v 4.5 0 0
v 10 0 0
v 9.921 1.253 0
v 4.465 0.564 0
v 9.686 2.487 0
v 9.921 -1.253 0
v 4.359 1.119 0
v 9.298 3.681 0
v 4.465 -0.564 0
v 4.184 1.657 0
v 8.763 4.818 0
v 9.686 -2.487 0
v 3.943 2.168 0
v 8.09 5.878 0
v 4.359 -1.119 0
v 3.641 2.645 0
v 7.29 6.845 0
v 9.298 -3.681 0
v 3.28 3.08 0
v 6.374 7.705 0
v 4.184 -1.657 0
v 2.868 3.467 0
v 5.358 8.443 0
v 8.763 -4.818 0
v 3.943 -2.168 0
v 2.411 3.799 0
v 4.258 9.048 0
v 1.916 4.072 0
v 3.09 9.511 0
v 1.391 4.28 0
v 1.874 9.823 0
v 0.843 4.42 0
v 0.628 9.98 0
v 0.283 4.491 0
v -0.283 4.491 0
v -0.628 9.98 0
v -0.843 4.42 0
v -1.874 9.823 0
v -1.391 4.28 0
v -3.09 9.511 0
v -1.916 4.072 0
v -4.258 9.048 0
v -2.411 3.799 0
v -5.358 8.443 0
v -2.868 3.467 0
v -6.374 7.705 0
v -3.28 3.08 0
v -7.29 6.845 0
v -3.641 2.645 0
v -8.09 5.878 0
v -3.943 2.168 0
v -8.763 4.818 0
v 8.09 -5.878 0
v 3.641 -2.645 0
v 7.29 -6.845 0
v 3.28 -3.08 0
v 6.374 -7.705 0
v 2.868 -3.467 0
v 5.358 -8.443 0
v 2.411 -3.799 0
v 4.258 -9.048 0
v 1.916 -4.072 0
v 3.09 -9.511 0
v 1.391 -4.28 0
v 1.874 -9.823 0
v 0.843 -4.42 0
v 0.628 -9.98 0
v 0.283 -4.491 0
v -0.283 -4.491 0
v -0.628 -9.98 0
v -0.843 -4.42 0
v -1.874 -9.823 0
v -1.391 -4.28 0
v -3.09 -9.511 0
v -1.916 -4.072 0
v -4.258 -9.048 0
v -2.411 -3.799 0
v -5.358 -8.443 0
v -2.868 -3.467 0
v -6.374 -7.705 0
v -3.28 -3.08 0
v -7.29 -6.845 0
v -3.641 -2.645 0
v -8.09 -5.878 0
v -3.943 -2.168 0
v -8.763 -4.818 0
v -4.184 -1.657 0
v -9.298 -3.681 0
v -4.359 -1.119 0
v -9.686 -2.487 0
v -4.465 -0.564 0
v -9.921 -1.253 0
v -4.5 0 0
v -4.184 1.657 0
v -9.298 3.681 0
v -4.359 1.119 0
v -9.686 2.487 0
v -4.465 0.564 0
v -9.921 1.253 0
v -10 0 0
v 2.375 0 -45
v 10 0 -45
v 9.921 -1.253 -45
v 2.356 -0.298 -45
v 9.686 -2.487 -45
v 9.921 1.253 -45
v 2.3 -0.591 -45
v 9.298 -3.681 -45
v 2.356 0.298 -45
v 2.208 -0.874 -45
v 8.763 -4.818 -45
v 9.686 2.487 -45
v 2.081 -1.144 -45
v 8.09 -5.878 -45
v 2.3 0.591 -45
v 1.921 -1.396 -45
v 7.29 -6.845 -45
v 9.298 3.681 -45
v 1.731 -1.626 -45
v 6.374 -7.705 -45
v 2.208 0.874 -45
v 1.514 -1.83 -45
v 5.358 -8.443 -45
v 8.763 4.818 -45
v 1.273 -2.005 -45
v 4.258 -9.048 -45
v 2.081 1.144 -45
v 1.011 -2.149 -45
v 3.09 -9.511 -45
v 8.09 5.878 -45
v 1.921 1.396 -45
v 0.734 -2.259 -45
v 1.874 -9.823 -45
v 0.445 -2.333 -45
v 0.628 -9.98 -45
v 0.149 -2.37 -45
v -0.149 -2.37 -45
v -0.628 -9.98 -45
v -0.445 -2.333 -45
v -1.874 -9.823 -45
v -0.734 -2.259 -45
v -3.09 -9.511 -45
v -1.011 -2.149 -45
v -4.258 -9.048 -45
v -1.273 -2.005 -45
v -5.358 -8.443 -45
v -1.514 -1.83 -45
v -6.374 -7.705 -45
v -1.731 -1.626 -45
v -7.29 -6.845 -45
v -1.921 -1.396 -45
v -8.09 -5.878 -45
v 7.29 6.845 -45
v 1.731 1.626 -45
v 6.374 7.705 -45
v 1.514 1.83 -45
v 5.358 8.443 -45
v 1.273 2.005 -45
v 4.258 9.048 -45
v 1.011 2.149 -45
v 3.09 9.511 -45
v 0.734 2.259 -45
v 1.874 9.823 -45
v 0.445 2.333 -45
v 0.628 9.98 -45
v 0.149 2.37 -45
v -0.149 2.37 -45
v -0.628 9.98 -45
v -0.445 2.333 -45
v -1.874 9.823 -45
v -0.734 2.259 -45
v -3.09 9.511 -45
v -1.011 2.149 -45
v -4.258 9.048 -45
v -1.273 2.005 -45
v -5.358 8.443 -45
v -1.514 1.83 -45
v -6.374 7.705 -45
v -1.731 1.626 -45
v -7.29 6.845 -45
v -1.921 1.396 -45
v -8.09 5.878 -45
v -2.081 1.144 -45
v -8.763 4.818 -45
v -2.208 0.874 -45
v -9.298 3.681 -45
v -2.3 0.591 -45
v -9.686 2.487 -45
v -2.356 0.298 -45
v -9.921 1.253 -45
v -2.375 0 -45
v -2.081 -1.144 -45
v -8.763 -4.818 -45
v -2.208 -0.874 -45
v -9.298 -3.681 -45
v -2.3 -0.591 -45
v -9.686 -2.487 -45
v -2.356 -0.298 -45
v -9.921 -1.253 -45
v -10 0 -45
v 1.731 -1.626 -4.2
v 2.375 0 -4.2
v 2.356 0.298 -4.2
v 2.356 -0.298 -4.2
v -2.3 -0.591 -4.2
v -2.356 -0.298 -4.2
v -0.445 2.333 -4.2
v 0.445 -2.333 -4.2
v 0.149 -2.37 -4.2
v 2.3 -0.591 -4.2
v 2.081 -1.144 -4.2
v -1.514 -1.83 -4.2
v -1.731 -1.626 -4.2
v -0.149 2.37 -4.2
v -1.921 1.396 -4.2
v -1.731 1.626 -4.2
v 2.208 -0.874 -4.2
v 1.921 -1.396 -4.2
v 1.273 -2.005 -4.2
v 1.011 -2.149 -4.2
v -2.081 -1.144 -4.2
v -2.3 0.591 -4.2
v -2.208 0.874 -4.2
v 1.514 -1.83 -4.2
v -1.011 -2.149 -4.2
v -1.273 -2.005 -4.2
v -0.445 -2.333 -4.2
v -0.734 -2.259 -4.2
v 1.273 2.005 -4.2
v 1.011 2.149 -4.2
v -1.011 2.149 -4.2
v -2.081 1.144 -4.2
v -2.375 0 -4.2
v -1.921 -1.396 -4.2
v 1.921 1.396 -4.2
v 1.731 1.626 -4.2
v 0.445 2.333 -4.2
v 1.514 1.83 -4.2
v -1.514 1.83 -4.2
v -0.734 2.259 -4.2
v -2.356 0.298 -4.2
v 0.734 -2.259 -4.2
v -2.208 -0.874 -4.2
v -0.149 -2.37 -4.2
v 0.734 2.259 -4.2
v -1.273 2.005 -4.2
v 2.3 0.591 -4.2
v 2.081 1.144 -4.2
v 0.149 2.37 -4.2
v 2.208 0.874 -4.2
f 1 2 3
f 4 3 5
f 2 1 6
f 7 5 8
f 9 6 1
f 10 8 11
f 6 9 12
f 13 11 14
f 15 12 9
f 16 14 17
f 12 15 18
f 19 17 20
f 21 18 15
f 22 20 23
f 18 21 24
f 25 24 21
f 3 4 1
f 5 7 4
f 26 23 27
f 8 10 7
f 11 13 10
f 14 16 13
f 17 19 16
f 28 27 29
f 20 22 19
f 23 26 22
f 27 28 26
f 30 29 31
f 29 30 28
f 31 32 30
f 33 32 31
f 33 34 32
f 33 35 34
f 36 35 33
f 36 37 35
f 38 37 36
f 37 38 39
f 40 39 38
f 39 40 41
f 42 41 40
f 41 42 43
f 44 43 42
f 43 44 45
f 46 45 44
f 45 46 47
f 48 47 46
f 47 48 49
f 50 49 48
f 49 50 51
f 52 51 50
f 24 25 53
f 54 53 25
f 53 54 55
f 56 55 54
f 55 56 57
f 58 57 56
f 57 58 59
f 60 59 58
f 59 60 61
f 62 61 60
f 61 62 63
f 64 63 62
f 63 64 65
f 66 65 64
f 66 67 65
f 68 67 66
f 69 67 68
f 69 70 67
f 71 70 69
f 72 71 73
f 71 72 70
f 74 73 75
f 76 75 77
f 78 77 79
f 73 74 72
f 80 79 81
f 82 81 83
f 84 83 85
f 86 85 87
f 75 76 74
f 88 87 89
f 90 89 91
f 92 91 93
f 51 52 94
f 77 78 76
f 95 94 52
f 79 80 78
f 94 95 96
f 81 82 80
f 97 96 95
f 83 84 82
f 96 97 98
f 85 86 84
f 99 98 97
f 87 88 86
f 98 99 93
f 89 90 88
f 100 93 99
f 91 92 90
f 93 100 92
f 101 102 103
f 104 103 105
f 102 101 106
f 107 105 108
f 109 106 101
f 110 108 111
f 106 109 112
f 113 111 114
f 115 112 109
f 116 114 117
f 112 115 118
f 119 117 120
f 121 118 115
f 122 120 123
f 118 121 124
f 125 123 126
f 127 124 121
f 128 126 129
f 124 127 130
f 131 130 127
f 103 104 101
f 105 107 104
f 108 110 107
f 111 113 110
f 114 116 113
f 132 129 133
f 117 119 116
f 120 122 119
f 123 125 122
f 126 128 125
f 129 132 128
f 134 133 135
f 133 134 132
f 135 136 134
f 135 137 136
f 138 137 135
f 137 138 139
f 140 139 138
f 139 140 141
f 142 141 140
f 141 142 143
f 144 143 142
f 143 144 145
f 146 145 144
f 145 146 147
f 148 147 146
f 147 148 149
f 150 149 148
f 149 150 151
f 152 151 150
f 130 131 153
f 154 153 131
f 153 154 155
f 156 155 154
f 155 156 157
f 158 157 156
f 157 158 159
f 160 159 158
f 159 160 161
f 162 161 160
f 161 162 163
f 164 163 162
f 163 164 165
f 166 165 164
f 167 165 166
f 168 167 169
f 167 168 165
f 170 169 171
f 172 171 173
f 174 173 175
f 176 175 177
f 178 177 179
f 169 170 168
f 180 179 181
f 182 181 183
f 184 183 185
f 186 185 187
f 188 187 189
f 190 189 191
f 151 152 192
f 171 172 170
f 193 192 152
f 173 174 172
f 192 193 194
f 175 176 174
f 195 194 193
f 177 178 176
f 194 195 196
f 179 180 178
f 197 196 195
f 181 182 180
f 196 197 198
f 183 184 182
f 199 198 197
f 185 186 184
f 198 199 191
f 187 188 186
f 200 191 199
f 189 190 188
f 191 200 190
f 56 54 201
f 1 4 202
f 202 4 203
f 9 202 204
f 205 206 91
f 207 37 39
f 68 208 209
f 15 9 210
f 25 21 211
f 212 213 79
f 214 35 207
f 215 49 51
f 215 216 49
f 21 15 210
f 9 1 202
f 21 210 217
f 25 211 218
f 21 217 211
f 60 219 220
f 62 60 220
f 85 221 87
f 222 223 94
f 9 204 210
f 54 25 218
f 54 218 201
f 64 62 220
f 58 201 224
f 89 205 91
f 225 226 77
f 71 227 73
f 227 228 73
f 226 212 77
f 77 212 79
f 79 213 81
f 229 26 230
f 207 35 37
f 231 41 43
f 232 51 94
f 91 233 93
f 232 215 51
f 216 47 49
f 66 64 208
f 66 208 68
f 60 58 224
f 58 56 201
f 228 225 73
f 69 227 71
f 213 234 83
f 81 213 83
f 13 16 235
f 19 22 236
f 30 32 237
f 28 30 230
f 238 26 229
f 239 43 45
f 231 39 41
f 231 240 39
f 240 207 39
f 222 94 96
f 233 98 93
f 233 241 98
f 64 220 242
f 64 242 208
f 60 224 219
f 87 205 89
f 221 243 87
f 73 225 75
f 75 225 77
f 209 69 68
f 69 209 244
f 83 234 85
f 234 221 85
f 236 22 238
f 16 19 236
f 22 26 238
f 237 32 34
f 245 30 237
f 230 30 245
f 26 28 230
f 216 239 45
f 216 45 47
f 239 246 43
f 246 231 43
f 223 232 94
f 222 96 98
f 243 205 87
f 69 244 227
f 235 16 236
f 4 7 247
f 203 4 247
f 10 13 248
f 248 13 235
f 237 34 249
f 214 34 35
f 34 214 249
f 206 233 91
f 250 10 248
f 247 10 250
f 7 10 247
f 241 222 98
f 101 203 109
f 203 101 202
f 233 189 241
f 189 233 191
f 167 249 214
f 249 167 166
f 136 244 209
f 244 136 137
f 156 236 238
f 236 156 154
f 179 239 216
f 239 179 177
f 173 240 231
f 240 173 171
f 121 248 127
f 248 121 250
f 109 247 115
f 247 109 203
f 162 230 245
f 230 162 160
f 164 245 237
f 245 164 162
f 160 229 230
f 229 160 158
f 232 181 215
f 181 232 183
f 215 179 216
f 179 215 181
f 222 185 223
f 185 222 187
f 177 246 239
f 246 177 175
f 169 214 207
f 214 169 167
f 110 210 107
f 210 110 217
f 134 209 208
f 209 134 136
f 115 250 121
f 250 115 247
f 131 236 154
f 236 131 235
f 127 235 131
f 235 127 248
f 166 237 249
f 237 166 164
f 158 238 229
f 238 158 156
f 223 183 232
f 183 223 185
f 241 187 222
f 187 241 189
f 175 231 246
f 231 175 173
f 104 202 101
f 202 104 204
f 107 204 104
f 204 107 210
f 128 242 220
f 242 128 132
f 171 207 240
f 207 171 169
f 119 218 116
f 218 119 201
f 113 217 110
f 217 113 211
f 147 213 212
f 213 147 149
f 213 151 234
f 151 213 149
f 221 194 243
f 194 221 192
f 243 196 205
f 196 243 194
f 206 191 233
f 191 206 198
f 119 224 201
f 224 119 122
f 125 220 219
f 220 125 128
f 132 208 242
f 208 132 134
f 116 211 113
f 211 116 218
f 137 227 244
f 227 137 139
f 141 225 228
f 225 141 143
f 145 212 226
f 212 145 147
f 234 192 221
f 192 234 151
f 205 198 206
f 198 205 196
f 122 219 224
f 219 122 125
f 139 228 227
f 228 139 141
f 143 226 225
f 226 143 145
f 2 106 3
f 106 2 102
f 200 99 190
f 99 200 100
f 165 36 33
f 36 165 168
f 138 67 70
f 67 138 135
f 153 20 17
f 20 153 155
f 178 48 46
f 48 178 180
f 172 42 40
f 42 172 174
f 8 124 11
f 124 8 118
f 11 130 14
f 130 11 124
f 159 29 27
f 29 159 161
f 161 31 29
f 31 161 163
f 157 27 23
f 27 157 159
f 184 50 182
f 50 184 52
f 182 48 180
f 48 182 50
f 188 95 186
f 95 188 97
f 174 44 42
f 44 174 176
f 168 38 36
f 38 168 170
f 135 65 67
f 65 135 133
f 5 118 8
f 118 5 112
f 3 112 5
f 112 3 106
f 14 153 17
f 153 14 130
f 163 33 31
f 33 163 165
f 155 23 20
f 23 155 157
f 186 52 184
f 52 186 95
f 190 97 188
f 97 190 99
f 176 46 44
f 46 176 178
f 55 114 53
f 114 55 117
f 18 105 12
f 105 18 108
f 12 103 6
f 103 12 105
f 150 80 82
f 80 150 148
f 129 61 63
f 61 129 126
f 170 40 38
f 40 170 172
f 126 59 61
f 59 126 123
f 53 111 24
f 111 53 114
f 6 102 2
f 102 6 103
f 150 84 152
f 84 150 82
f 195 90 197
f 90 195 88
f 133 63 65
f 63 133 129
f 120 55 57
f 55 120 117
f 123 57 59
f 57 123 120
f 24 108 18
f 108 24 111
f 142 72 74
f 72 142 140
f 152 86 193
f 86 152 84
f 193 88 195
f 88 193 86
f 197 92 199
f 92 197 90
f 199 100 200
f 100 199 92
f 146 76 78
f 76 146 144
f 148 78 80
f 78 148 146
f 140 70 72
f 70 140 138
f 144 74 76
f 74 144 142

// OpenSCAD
$fn = 50;


difference() {
	union() {
		translate(v = [0, 0, -45.0000000000]) {
			cylinder(h = 45, r = 10.0000000000);
		}
		cylinder(h = 0, r = 13.0000000000);
	}
	union() {
		translate(v = [0, 0, 0]) {
			rotate(a = [0, 0, 0]) {
				difference() {
					union() {
						#translate(v = [0, 0, -45.0000000000]) {
							cylinder(h = 45, r = 2.2500000000);
						}
						#translate(v = [0, 0, -4.2000000000]) {
							cylinder(h = 4.2000000000, r = 10.0000000000, r1 = 2.3750000000, r2 = 4.5000000000);
						}
						#translate(v = [0, 0, -45.0000000000]) {
							cylinder(h = 45, r = 2.3750000000);
						}
						#translate(v = [0, 0, -45.0000000000]) {
							cylinder(h = 45, r = 2.2500000000);
						}
					}
					union();
				}
			}
		}
	}
}
